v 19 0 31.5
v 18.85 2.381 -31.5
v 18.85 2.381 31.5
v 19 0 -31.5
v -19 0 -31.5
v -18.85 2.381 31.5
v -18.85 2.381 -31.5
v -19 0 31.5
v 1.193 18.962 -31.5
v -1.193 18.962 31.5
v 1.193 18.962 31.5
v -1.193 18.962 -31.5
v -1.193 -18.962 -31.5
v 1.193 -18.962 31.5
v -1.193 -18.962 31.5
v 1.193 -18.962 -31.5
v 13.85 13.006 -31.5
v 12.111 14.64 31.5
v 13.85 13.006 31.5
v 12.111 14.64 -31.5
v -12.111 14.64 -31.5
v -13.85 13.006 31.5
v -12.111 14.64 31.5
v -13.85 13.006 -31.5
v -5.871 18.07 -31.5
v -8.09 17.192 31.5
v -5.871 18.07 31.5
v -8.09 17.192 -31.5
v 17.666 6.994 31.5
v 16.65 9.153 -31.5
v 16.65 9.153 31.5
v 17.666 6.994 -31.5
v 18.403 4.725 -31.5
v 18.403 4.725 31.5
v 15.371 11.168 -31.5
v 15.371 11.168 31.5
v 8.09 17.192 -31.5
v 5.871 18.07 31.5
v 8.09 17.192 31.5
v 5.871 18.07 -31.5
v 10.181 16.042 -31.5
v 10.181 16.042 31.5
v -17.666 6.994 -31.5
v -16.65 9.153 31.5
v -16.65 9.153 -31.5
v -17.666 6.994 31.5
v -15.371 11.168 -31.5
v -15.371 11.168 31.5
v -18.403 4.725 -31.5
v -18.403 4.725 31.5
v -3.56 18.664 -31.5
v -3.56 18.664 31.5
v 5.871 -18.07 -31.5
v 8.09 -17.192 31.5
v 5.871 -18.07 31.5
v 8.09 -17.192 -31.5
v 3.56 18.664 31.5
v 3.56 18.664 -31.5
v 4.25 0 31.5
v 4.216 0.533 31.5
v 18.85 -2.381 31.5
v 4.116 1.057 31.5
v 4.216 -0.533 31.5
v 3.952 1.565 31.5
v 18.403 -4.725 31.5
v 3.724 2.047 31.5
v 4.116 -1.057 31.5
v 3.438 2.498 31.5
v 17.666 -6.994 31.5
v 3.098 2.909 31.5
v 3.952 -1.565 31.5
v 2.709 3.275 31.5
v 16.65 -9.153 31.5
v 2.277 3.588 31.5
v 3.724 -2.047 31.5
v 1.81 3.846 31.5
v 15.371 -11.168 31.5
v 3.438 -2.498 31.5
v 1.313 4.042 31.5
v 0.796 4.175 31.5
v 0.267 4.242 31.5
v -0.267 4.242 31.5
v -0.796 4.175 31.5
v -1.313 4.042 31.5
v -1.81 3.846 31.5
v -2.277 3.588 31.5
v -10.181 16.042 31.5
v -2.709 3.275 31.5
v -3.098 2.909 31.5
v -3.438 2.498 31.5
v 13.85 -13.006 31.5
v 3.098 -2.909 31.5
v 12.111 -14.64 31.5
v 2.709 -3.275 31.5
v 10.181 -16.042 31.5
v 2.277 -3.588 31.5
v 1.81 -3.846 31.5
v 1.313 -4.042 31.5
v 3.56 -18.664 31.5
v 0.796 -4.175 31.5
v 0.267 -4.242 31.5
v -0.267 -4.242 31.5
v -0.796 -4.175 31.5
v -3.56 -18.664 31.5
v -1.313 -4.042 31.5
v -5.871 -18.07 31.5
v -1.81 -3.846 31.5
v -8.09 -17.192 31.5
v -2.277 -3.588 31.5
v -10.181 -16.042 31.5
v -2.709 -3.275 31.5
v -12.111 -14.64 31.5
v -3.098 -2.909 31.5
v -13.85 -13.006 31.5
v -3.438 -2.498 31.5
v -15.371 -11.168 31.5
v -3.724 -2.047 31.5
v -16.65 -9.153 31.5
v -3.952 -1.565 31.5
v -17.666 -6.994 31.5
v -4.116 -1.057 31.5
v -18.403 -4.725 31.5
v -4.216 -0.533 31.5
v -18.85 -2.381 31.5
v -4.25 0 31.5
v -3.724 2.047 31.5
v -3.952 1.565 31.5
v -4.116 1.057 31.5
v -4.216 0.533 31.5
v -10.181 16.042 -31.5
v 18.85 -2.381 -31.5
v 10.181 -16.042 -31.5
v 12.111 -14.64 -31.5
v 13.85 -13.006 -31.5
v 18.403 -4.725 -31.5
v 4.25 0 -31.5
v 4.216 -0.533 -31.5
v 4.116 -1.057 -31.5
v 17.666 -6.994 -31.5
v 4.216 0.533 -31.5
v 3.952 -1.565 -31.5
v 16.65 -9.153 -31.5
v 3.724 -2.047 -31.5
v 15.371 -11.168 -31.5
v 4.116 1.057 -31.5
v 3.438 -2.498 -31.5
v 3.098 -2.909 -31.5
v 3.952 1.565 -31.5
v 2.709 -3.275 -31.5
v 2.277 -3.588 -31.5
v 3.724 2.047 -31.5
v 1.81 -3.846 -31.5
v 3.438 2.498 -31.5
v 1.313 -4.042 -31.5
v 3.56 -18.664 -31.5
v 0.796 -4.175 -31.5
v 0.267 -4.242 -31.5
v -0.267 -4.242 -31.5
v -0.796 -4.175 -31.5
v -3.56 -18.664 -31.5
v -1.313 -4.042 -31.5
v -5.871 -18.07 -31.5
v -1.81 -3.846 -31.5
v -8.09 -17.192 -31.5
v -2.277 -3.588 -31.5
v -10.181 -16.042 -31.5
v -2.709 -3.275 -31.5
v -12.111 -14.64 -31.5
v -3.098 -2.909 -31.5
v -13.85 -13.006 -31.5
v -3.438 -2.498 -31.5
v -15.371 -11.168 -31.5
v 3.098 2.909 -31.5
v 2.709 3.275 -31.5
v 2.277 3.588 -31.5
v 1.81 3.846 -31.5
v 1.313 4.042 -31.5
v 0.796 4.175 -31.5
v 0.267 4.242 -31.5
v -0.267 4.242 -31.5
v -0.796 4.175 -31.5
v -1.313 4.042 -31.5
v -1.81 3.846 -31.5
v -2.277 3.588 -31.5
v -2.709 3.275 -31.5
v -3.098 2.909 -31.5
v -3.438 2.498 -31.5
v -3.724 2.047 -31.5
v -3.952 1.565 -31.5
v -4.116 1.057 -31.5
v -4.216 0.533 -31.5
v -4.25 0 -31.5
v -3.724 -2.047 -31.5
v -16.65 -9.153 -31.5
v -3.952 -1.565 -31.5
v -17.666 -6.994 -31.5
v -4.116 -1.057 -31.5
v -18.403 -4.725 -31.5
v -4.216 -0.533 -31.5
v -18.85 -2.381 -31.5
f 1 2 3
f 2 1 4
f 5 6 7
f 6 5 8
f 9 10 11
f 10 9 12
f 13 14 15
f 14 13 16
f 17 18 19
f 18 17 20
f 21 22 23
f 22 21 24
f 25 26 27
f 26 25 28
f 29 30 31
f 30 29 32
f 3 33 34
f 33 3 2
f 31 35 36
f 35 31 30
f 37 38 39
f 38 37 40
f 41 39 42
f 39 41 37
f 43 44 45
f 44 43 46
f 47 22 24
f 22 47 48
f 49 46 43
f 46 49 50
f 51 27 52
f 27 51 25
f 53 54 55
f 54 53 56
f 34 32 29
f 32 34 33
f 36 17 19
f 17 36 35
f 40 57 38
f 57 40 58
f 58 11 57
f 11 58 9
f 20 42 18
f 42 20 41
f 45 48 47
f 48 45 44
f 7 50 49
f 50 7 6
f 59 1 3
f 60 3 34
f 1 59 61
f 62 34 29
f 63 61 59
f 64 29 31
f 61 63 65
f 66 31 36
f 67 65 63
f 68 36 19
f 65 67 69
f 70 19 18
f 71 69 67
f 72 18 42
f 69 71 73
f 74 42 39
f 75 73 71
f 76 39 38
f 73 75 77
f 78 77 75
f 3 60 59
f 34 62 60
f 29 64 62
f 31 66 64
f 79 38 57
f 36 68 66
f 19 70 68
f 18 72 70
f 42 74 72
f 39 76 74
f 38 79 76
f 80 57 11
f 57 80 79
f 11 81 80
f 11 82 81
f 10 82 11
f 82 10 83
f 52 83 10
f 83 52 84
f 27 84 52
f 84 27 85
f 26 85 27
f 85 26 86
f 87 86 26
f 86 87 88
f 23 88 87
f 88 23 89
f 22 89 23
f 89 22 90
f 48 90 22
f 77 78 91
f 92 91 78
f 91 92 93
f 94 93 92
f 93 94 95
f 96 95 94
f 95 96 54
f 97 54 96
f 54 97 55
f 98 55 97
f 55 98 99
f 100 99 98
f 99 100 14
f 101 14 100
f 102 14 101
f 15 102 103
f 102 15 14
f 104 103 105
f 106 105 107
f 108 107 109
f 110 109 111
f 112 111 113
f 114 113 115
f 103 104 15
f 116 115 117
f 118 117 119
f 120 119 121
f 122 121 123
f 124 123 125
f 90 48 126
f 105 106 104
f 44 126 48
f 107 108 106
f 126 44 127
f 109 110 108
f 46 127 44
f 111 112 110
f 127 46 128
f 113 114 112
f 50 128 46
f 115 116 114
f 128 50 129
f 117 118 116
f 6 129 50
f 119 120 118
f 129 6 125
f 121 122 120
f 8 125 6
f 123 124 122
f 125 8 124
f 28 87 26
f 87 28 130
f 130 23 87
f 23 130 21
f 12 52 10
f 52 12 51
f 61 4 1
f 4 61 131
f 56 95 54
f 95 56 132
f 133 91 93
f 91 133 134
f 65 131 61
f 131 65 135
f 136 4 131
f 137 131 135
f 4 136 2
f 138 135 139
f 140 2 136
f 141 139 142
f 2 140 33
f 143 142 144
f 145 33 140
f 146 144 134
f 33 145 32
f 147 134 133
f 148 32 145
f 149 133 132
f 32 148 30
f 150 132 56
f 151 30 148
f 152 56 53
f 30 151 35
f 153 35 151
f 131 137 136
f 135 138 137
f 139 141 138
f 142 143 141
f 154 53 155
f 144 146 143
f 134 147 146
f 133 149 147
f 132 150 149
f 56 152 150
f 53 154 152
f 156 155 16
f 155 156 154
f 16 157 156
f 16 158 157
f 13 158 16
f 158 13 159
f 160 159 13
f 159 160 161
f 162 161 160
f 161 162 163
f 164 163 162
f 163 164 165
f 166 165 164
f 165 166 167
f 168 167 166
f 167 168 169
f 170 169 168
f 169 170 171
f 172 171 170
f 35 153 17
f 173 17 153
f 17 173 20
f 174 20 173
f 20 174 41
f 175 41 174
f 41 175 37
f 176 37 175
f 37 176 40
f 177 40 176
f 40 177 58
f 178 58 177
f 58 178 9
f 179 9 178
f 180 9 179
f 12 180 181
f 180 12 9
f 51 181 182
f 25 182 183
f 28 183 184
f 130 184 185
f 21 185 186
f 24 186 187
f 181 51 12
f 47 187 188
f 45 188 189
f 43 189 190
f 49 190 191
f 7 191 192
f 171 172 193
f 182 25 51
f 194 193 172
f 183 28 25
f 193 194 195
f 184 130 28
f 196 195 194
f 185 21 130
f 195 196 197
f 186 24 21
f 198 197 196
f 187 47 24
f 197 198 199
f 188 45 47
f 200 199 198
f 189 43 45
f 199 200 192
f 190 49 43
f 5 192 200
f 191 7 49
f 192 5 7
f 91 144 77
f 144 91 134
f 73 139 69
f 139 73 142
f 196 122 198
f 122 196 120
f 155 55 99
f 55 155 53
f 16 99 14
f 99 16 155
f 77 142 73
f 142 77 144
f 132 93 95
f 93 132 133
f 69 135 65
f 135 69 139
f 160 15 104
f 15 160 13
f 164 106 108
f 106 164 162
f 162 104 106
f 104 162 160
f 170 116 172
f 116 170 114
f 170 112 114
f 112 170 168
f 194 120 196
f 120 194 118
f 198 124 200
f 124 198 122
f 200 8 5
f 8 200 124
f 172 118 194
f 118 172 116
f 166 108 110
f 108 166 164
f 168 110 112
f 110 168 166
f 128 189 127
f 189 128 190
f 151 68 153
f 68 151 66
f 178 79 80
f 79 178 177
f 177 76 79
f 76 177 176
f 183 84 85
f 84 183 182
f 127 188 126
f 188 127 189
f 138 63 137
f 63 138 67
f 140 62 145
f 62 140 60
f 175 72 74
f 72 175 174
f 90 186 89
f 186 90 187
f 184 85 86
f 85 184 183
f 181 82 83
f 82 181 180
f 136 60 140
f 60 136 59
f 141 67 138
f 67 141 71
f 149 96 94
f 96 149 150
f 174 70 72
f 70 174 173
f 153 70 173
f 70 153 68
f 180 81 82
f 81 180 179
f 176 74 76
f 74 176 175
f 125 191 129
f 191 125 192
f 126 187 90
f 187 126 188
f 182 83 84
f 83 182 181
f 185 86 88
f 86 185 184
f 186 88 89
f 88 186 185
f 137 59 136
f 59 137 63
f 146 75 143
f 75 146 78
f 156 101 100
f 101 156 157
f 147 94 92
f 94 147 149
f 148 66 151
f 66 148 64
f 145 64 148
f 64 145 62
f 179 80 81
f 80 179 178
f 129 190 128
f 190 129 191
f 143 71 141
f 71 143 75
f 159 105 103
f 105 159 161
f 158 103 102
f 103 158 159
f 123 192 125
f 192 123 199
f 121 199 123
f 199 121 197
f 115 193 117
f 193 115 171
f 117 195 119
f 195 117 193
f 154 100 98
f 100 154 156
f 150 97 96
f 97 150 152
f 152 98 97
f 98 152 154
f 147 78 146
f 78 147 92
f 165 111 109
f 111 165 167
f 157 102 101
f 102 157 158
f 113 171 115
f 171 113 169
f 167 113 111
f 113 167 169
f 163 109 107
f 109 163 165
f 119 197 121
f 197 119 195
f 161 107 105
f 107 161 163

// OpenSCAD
$fn = 50;


difference() {
	union() {
		translate(v = [0, 0, -31.5000000000]) {
			cylinder(h = 63, r = 19.0000000000);
		}
	}
	union() {
		translate(v = [0, 0, -100.0000000000]) {
			cylinder(h = 200, r = 4.2500000000);
		}
	}
}
